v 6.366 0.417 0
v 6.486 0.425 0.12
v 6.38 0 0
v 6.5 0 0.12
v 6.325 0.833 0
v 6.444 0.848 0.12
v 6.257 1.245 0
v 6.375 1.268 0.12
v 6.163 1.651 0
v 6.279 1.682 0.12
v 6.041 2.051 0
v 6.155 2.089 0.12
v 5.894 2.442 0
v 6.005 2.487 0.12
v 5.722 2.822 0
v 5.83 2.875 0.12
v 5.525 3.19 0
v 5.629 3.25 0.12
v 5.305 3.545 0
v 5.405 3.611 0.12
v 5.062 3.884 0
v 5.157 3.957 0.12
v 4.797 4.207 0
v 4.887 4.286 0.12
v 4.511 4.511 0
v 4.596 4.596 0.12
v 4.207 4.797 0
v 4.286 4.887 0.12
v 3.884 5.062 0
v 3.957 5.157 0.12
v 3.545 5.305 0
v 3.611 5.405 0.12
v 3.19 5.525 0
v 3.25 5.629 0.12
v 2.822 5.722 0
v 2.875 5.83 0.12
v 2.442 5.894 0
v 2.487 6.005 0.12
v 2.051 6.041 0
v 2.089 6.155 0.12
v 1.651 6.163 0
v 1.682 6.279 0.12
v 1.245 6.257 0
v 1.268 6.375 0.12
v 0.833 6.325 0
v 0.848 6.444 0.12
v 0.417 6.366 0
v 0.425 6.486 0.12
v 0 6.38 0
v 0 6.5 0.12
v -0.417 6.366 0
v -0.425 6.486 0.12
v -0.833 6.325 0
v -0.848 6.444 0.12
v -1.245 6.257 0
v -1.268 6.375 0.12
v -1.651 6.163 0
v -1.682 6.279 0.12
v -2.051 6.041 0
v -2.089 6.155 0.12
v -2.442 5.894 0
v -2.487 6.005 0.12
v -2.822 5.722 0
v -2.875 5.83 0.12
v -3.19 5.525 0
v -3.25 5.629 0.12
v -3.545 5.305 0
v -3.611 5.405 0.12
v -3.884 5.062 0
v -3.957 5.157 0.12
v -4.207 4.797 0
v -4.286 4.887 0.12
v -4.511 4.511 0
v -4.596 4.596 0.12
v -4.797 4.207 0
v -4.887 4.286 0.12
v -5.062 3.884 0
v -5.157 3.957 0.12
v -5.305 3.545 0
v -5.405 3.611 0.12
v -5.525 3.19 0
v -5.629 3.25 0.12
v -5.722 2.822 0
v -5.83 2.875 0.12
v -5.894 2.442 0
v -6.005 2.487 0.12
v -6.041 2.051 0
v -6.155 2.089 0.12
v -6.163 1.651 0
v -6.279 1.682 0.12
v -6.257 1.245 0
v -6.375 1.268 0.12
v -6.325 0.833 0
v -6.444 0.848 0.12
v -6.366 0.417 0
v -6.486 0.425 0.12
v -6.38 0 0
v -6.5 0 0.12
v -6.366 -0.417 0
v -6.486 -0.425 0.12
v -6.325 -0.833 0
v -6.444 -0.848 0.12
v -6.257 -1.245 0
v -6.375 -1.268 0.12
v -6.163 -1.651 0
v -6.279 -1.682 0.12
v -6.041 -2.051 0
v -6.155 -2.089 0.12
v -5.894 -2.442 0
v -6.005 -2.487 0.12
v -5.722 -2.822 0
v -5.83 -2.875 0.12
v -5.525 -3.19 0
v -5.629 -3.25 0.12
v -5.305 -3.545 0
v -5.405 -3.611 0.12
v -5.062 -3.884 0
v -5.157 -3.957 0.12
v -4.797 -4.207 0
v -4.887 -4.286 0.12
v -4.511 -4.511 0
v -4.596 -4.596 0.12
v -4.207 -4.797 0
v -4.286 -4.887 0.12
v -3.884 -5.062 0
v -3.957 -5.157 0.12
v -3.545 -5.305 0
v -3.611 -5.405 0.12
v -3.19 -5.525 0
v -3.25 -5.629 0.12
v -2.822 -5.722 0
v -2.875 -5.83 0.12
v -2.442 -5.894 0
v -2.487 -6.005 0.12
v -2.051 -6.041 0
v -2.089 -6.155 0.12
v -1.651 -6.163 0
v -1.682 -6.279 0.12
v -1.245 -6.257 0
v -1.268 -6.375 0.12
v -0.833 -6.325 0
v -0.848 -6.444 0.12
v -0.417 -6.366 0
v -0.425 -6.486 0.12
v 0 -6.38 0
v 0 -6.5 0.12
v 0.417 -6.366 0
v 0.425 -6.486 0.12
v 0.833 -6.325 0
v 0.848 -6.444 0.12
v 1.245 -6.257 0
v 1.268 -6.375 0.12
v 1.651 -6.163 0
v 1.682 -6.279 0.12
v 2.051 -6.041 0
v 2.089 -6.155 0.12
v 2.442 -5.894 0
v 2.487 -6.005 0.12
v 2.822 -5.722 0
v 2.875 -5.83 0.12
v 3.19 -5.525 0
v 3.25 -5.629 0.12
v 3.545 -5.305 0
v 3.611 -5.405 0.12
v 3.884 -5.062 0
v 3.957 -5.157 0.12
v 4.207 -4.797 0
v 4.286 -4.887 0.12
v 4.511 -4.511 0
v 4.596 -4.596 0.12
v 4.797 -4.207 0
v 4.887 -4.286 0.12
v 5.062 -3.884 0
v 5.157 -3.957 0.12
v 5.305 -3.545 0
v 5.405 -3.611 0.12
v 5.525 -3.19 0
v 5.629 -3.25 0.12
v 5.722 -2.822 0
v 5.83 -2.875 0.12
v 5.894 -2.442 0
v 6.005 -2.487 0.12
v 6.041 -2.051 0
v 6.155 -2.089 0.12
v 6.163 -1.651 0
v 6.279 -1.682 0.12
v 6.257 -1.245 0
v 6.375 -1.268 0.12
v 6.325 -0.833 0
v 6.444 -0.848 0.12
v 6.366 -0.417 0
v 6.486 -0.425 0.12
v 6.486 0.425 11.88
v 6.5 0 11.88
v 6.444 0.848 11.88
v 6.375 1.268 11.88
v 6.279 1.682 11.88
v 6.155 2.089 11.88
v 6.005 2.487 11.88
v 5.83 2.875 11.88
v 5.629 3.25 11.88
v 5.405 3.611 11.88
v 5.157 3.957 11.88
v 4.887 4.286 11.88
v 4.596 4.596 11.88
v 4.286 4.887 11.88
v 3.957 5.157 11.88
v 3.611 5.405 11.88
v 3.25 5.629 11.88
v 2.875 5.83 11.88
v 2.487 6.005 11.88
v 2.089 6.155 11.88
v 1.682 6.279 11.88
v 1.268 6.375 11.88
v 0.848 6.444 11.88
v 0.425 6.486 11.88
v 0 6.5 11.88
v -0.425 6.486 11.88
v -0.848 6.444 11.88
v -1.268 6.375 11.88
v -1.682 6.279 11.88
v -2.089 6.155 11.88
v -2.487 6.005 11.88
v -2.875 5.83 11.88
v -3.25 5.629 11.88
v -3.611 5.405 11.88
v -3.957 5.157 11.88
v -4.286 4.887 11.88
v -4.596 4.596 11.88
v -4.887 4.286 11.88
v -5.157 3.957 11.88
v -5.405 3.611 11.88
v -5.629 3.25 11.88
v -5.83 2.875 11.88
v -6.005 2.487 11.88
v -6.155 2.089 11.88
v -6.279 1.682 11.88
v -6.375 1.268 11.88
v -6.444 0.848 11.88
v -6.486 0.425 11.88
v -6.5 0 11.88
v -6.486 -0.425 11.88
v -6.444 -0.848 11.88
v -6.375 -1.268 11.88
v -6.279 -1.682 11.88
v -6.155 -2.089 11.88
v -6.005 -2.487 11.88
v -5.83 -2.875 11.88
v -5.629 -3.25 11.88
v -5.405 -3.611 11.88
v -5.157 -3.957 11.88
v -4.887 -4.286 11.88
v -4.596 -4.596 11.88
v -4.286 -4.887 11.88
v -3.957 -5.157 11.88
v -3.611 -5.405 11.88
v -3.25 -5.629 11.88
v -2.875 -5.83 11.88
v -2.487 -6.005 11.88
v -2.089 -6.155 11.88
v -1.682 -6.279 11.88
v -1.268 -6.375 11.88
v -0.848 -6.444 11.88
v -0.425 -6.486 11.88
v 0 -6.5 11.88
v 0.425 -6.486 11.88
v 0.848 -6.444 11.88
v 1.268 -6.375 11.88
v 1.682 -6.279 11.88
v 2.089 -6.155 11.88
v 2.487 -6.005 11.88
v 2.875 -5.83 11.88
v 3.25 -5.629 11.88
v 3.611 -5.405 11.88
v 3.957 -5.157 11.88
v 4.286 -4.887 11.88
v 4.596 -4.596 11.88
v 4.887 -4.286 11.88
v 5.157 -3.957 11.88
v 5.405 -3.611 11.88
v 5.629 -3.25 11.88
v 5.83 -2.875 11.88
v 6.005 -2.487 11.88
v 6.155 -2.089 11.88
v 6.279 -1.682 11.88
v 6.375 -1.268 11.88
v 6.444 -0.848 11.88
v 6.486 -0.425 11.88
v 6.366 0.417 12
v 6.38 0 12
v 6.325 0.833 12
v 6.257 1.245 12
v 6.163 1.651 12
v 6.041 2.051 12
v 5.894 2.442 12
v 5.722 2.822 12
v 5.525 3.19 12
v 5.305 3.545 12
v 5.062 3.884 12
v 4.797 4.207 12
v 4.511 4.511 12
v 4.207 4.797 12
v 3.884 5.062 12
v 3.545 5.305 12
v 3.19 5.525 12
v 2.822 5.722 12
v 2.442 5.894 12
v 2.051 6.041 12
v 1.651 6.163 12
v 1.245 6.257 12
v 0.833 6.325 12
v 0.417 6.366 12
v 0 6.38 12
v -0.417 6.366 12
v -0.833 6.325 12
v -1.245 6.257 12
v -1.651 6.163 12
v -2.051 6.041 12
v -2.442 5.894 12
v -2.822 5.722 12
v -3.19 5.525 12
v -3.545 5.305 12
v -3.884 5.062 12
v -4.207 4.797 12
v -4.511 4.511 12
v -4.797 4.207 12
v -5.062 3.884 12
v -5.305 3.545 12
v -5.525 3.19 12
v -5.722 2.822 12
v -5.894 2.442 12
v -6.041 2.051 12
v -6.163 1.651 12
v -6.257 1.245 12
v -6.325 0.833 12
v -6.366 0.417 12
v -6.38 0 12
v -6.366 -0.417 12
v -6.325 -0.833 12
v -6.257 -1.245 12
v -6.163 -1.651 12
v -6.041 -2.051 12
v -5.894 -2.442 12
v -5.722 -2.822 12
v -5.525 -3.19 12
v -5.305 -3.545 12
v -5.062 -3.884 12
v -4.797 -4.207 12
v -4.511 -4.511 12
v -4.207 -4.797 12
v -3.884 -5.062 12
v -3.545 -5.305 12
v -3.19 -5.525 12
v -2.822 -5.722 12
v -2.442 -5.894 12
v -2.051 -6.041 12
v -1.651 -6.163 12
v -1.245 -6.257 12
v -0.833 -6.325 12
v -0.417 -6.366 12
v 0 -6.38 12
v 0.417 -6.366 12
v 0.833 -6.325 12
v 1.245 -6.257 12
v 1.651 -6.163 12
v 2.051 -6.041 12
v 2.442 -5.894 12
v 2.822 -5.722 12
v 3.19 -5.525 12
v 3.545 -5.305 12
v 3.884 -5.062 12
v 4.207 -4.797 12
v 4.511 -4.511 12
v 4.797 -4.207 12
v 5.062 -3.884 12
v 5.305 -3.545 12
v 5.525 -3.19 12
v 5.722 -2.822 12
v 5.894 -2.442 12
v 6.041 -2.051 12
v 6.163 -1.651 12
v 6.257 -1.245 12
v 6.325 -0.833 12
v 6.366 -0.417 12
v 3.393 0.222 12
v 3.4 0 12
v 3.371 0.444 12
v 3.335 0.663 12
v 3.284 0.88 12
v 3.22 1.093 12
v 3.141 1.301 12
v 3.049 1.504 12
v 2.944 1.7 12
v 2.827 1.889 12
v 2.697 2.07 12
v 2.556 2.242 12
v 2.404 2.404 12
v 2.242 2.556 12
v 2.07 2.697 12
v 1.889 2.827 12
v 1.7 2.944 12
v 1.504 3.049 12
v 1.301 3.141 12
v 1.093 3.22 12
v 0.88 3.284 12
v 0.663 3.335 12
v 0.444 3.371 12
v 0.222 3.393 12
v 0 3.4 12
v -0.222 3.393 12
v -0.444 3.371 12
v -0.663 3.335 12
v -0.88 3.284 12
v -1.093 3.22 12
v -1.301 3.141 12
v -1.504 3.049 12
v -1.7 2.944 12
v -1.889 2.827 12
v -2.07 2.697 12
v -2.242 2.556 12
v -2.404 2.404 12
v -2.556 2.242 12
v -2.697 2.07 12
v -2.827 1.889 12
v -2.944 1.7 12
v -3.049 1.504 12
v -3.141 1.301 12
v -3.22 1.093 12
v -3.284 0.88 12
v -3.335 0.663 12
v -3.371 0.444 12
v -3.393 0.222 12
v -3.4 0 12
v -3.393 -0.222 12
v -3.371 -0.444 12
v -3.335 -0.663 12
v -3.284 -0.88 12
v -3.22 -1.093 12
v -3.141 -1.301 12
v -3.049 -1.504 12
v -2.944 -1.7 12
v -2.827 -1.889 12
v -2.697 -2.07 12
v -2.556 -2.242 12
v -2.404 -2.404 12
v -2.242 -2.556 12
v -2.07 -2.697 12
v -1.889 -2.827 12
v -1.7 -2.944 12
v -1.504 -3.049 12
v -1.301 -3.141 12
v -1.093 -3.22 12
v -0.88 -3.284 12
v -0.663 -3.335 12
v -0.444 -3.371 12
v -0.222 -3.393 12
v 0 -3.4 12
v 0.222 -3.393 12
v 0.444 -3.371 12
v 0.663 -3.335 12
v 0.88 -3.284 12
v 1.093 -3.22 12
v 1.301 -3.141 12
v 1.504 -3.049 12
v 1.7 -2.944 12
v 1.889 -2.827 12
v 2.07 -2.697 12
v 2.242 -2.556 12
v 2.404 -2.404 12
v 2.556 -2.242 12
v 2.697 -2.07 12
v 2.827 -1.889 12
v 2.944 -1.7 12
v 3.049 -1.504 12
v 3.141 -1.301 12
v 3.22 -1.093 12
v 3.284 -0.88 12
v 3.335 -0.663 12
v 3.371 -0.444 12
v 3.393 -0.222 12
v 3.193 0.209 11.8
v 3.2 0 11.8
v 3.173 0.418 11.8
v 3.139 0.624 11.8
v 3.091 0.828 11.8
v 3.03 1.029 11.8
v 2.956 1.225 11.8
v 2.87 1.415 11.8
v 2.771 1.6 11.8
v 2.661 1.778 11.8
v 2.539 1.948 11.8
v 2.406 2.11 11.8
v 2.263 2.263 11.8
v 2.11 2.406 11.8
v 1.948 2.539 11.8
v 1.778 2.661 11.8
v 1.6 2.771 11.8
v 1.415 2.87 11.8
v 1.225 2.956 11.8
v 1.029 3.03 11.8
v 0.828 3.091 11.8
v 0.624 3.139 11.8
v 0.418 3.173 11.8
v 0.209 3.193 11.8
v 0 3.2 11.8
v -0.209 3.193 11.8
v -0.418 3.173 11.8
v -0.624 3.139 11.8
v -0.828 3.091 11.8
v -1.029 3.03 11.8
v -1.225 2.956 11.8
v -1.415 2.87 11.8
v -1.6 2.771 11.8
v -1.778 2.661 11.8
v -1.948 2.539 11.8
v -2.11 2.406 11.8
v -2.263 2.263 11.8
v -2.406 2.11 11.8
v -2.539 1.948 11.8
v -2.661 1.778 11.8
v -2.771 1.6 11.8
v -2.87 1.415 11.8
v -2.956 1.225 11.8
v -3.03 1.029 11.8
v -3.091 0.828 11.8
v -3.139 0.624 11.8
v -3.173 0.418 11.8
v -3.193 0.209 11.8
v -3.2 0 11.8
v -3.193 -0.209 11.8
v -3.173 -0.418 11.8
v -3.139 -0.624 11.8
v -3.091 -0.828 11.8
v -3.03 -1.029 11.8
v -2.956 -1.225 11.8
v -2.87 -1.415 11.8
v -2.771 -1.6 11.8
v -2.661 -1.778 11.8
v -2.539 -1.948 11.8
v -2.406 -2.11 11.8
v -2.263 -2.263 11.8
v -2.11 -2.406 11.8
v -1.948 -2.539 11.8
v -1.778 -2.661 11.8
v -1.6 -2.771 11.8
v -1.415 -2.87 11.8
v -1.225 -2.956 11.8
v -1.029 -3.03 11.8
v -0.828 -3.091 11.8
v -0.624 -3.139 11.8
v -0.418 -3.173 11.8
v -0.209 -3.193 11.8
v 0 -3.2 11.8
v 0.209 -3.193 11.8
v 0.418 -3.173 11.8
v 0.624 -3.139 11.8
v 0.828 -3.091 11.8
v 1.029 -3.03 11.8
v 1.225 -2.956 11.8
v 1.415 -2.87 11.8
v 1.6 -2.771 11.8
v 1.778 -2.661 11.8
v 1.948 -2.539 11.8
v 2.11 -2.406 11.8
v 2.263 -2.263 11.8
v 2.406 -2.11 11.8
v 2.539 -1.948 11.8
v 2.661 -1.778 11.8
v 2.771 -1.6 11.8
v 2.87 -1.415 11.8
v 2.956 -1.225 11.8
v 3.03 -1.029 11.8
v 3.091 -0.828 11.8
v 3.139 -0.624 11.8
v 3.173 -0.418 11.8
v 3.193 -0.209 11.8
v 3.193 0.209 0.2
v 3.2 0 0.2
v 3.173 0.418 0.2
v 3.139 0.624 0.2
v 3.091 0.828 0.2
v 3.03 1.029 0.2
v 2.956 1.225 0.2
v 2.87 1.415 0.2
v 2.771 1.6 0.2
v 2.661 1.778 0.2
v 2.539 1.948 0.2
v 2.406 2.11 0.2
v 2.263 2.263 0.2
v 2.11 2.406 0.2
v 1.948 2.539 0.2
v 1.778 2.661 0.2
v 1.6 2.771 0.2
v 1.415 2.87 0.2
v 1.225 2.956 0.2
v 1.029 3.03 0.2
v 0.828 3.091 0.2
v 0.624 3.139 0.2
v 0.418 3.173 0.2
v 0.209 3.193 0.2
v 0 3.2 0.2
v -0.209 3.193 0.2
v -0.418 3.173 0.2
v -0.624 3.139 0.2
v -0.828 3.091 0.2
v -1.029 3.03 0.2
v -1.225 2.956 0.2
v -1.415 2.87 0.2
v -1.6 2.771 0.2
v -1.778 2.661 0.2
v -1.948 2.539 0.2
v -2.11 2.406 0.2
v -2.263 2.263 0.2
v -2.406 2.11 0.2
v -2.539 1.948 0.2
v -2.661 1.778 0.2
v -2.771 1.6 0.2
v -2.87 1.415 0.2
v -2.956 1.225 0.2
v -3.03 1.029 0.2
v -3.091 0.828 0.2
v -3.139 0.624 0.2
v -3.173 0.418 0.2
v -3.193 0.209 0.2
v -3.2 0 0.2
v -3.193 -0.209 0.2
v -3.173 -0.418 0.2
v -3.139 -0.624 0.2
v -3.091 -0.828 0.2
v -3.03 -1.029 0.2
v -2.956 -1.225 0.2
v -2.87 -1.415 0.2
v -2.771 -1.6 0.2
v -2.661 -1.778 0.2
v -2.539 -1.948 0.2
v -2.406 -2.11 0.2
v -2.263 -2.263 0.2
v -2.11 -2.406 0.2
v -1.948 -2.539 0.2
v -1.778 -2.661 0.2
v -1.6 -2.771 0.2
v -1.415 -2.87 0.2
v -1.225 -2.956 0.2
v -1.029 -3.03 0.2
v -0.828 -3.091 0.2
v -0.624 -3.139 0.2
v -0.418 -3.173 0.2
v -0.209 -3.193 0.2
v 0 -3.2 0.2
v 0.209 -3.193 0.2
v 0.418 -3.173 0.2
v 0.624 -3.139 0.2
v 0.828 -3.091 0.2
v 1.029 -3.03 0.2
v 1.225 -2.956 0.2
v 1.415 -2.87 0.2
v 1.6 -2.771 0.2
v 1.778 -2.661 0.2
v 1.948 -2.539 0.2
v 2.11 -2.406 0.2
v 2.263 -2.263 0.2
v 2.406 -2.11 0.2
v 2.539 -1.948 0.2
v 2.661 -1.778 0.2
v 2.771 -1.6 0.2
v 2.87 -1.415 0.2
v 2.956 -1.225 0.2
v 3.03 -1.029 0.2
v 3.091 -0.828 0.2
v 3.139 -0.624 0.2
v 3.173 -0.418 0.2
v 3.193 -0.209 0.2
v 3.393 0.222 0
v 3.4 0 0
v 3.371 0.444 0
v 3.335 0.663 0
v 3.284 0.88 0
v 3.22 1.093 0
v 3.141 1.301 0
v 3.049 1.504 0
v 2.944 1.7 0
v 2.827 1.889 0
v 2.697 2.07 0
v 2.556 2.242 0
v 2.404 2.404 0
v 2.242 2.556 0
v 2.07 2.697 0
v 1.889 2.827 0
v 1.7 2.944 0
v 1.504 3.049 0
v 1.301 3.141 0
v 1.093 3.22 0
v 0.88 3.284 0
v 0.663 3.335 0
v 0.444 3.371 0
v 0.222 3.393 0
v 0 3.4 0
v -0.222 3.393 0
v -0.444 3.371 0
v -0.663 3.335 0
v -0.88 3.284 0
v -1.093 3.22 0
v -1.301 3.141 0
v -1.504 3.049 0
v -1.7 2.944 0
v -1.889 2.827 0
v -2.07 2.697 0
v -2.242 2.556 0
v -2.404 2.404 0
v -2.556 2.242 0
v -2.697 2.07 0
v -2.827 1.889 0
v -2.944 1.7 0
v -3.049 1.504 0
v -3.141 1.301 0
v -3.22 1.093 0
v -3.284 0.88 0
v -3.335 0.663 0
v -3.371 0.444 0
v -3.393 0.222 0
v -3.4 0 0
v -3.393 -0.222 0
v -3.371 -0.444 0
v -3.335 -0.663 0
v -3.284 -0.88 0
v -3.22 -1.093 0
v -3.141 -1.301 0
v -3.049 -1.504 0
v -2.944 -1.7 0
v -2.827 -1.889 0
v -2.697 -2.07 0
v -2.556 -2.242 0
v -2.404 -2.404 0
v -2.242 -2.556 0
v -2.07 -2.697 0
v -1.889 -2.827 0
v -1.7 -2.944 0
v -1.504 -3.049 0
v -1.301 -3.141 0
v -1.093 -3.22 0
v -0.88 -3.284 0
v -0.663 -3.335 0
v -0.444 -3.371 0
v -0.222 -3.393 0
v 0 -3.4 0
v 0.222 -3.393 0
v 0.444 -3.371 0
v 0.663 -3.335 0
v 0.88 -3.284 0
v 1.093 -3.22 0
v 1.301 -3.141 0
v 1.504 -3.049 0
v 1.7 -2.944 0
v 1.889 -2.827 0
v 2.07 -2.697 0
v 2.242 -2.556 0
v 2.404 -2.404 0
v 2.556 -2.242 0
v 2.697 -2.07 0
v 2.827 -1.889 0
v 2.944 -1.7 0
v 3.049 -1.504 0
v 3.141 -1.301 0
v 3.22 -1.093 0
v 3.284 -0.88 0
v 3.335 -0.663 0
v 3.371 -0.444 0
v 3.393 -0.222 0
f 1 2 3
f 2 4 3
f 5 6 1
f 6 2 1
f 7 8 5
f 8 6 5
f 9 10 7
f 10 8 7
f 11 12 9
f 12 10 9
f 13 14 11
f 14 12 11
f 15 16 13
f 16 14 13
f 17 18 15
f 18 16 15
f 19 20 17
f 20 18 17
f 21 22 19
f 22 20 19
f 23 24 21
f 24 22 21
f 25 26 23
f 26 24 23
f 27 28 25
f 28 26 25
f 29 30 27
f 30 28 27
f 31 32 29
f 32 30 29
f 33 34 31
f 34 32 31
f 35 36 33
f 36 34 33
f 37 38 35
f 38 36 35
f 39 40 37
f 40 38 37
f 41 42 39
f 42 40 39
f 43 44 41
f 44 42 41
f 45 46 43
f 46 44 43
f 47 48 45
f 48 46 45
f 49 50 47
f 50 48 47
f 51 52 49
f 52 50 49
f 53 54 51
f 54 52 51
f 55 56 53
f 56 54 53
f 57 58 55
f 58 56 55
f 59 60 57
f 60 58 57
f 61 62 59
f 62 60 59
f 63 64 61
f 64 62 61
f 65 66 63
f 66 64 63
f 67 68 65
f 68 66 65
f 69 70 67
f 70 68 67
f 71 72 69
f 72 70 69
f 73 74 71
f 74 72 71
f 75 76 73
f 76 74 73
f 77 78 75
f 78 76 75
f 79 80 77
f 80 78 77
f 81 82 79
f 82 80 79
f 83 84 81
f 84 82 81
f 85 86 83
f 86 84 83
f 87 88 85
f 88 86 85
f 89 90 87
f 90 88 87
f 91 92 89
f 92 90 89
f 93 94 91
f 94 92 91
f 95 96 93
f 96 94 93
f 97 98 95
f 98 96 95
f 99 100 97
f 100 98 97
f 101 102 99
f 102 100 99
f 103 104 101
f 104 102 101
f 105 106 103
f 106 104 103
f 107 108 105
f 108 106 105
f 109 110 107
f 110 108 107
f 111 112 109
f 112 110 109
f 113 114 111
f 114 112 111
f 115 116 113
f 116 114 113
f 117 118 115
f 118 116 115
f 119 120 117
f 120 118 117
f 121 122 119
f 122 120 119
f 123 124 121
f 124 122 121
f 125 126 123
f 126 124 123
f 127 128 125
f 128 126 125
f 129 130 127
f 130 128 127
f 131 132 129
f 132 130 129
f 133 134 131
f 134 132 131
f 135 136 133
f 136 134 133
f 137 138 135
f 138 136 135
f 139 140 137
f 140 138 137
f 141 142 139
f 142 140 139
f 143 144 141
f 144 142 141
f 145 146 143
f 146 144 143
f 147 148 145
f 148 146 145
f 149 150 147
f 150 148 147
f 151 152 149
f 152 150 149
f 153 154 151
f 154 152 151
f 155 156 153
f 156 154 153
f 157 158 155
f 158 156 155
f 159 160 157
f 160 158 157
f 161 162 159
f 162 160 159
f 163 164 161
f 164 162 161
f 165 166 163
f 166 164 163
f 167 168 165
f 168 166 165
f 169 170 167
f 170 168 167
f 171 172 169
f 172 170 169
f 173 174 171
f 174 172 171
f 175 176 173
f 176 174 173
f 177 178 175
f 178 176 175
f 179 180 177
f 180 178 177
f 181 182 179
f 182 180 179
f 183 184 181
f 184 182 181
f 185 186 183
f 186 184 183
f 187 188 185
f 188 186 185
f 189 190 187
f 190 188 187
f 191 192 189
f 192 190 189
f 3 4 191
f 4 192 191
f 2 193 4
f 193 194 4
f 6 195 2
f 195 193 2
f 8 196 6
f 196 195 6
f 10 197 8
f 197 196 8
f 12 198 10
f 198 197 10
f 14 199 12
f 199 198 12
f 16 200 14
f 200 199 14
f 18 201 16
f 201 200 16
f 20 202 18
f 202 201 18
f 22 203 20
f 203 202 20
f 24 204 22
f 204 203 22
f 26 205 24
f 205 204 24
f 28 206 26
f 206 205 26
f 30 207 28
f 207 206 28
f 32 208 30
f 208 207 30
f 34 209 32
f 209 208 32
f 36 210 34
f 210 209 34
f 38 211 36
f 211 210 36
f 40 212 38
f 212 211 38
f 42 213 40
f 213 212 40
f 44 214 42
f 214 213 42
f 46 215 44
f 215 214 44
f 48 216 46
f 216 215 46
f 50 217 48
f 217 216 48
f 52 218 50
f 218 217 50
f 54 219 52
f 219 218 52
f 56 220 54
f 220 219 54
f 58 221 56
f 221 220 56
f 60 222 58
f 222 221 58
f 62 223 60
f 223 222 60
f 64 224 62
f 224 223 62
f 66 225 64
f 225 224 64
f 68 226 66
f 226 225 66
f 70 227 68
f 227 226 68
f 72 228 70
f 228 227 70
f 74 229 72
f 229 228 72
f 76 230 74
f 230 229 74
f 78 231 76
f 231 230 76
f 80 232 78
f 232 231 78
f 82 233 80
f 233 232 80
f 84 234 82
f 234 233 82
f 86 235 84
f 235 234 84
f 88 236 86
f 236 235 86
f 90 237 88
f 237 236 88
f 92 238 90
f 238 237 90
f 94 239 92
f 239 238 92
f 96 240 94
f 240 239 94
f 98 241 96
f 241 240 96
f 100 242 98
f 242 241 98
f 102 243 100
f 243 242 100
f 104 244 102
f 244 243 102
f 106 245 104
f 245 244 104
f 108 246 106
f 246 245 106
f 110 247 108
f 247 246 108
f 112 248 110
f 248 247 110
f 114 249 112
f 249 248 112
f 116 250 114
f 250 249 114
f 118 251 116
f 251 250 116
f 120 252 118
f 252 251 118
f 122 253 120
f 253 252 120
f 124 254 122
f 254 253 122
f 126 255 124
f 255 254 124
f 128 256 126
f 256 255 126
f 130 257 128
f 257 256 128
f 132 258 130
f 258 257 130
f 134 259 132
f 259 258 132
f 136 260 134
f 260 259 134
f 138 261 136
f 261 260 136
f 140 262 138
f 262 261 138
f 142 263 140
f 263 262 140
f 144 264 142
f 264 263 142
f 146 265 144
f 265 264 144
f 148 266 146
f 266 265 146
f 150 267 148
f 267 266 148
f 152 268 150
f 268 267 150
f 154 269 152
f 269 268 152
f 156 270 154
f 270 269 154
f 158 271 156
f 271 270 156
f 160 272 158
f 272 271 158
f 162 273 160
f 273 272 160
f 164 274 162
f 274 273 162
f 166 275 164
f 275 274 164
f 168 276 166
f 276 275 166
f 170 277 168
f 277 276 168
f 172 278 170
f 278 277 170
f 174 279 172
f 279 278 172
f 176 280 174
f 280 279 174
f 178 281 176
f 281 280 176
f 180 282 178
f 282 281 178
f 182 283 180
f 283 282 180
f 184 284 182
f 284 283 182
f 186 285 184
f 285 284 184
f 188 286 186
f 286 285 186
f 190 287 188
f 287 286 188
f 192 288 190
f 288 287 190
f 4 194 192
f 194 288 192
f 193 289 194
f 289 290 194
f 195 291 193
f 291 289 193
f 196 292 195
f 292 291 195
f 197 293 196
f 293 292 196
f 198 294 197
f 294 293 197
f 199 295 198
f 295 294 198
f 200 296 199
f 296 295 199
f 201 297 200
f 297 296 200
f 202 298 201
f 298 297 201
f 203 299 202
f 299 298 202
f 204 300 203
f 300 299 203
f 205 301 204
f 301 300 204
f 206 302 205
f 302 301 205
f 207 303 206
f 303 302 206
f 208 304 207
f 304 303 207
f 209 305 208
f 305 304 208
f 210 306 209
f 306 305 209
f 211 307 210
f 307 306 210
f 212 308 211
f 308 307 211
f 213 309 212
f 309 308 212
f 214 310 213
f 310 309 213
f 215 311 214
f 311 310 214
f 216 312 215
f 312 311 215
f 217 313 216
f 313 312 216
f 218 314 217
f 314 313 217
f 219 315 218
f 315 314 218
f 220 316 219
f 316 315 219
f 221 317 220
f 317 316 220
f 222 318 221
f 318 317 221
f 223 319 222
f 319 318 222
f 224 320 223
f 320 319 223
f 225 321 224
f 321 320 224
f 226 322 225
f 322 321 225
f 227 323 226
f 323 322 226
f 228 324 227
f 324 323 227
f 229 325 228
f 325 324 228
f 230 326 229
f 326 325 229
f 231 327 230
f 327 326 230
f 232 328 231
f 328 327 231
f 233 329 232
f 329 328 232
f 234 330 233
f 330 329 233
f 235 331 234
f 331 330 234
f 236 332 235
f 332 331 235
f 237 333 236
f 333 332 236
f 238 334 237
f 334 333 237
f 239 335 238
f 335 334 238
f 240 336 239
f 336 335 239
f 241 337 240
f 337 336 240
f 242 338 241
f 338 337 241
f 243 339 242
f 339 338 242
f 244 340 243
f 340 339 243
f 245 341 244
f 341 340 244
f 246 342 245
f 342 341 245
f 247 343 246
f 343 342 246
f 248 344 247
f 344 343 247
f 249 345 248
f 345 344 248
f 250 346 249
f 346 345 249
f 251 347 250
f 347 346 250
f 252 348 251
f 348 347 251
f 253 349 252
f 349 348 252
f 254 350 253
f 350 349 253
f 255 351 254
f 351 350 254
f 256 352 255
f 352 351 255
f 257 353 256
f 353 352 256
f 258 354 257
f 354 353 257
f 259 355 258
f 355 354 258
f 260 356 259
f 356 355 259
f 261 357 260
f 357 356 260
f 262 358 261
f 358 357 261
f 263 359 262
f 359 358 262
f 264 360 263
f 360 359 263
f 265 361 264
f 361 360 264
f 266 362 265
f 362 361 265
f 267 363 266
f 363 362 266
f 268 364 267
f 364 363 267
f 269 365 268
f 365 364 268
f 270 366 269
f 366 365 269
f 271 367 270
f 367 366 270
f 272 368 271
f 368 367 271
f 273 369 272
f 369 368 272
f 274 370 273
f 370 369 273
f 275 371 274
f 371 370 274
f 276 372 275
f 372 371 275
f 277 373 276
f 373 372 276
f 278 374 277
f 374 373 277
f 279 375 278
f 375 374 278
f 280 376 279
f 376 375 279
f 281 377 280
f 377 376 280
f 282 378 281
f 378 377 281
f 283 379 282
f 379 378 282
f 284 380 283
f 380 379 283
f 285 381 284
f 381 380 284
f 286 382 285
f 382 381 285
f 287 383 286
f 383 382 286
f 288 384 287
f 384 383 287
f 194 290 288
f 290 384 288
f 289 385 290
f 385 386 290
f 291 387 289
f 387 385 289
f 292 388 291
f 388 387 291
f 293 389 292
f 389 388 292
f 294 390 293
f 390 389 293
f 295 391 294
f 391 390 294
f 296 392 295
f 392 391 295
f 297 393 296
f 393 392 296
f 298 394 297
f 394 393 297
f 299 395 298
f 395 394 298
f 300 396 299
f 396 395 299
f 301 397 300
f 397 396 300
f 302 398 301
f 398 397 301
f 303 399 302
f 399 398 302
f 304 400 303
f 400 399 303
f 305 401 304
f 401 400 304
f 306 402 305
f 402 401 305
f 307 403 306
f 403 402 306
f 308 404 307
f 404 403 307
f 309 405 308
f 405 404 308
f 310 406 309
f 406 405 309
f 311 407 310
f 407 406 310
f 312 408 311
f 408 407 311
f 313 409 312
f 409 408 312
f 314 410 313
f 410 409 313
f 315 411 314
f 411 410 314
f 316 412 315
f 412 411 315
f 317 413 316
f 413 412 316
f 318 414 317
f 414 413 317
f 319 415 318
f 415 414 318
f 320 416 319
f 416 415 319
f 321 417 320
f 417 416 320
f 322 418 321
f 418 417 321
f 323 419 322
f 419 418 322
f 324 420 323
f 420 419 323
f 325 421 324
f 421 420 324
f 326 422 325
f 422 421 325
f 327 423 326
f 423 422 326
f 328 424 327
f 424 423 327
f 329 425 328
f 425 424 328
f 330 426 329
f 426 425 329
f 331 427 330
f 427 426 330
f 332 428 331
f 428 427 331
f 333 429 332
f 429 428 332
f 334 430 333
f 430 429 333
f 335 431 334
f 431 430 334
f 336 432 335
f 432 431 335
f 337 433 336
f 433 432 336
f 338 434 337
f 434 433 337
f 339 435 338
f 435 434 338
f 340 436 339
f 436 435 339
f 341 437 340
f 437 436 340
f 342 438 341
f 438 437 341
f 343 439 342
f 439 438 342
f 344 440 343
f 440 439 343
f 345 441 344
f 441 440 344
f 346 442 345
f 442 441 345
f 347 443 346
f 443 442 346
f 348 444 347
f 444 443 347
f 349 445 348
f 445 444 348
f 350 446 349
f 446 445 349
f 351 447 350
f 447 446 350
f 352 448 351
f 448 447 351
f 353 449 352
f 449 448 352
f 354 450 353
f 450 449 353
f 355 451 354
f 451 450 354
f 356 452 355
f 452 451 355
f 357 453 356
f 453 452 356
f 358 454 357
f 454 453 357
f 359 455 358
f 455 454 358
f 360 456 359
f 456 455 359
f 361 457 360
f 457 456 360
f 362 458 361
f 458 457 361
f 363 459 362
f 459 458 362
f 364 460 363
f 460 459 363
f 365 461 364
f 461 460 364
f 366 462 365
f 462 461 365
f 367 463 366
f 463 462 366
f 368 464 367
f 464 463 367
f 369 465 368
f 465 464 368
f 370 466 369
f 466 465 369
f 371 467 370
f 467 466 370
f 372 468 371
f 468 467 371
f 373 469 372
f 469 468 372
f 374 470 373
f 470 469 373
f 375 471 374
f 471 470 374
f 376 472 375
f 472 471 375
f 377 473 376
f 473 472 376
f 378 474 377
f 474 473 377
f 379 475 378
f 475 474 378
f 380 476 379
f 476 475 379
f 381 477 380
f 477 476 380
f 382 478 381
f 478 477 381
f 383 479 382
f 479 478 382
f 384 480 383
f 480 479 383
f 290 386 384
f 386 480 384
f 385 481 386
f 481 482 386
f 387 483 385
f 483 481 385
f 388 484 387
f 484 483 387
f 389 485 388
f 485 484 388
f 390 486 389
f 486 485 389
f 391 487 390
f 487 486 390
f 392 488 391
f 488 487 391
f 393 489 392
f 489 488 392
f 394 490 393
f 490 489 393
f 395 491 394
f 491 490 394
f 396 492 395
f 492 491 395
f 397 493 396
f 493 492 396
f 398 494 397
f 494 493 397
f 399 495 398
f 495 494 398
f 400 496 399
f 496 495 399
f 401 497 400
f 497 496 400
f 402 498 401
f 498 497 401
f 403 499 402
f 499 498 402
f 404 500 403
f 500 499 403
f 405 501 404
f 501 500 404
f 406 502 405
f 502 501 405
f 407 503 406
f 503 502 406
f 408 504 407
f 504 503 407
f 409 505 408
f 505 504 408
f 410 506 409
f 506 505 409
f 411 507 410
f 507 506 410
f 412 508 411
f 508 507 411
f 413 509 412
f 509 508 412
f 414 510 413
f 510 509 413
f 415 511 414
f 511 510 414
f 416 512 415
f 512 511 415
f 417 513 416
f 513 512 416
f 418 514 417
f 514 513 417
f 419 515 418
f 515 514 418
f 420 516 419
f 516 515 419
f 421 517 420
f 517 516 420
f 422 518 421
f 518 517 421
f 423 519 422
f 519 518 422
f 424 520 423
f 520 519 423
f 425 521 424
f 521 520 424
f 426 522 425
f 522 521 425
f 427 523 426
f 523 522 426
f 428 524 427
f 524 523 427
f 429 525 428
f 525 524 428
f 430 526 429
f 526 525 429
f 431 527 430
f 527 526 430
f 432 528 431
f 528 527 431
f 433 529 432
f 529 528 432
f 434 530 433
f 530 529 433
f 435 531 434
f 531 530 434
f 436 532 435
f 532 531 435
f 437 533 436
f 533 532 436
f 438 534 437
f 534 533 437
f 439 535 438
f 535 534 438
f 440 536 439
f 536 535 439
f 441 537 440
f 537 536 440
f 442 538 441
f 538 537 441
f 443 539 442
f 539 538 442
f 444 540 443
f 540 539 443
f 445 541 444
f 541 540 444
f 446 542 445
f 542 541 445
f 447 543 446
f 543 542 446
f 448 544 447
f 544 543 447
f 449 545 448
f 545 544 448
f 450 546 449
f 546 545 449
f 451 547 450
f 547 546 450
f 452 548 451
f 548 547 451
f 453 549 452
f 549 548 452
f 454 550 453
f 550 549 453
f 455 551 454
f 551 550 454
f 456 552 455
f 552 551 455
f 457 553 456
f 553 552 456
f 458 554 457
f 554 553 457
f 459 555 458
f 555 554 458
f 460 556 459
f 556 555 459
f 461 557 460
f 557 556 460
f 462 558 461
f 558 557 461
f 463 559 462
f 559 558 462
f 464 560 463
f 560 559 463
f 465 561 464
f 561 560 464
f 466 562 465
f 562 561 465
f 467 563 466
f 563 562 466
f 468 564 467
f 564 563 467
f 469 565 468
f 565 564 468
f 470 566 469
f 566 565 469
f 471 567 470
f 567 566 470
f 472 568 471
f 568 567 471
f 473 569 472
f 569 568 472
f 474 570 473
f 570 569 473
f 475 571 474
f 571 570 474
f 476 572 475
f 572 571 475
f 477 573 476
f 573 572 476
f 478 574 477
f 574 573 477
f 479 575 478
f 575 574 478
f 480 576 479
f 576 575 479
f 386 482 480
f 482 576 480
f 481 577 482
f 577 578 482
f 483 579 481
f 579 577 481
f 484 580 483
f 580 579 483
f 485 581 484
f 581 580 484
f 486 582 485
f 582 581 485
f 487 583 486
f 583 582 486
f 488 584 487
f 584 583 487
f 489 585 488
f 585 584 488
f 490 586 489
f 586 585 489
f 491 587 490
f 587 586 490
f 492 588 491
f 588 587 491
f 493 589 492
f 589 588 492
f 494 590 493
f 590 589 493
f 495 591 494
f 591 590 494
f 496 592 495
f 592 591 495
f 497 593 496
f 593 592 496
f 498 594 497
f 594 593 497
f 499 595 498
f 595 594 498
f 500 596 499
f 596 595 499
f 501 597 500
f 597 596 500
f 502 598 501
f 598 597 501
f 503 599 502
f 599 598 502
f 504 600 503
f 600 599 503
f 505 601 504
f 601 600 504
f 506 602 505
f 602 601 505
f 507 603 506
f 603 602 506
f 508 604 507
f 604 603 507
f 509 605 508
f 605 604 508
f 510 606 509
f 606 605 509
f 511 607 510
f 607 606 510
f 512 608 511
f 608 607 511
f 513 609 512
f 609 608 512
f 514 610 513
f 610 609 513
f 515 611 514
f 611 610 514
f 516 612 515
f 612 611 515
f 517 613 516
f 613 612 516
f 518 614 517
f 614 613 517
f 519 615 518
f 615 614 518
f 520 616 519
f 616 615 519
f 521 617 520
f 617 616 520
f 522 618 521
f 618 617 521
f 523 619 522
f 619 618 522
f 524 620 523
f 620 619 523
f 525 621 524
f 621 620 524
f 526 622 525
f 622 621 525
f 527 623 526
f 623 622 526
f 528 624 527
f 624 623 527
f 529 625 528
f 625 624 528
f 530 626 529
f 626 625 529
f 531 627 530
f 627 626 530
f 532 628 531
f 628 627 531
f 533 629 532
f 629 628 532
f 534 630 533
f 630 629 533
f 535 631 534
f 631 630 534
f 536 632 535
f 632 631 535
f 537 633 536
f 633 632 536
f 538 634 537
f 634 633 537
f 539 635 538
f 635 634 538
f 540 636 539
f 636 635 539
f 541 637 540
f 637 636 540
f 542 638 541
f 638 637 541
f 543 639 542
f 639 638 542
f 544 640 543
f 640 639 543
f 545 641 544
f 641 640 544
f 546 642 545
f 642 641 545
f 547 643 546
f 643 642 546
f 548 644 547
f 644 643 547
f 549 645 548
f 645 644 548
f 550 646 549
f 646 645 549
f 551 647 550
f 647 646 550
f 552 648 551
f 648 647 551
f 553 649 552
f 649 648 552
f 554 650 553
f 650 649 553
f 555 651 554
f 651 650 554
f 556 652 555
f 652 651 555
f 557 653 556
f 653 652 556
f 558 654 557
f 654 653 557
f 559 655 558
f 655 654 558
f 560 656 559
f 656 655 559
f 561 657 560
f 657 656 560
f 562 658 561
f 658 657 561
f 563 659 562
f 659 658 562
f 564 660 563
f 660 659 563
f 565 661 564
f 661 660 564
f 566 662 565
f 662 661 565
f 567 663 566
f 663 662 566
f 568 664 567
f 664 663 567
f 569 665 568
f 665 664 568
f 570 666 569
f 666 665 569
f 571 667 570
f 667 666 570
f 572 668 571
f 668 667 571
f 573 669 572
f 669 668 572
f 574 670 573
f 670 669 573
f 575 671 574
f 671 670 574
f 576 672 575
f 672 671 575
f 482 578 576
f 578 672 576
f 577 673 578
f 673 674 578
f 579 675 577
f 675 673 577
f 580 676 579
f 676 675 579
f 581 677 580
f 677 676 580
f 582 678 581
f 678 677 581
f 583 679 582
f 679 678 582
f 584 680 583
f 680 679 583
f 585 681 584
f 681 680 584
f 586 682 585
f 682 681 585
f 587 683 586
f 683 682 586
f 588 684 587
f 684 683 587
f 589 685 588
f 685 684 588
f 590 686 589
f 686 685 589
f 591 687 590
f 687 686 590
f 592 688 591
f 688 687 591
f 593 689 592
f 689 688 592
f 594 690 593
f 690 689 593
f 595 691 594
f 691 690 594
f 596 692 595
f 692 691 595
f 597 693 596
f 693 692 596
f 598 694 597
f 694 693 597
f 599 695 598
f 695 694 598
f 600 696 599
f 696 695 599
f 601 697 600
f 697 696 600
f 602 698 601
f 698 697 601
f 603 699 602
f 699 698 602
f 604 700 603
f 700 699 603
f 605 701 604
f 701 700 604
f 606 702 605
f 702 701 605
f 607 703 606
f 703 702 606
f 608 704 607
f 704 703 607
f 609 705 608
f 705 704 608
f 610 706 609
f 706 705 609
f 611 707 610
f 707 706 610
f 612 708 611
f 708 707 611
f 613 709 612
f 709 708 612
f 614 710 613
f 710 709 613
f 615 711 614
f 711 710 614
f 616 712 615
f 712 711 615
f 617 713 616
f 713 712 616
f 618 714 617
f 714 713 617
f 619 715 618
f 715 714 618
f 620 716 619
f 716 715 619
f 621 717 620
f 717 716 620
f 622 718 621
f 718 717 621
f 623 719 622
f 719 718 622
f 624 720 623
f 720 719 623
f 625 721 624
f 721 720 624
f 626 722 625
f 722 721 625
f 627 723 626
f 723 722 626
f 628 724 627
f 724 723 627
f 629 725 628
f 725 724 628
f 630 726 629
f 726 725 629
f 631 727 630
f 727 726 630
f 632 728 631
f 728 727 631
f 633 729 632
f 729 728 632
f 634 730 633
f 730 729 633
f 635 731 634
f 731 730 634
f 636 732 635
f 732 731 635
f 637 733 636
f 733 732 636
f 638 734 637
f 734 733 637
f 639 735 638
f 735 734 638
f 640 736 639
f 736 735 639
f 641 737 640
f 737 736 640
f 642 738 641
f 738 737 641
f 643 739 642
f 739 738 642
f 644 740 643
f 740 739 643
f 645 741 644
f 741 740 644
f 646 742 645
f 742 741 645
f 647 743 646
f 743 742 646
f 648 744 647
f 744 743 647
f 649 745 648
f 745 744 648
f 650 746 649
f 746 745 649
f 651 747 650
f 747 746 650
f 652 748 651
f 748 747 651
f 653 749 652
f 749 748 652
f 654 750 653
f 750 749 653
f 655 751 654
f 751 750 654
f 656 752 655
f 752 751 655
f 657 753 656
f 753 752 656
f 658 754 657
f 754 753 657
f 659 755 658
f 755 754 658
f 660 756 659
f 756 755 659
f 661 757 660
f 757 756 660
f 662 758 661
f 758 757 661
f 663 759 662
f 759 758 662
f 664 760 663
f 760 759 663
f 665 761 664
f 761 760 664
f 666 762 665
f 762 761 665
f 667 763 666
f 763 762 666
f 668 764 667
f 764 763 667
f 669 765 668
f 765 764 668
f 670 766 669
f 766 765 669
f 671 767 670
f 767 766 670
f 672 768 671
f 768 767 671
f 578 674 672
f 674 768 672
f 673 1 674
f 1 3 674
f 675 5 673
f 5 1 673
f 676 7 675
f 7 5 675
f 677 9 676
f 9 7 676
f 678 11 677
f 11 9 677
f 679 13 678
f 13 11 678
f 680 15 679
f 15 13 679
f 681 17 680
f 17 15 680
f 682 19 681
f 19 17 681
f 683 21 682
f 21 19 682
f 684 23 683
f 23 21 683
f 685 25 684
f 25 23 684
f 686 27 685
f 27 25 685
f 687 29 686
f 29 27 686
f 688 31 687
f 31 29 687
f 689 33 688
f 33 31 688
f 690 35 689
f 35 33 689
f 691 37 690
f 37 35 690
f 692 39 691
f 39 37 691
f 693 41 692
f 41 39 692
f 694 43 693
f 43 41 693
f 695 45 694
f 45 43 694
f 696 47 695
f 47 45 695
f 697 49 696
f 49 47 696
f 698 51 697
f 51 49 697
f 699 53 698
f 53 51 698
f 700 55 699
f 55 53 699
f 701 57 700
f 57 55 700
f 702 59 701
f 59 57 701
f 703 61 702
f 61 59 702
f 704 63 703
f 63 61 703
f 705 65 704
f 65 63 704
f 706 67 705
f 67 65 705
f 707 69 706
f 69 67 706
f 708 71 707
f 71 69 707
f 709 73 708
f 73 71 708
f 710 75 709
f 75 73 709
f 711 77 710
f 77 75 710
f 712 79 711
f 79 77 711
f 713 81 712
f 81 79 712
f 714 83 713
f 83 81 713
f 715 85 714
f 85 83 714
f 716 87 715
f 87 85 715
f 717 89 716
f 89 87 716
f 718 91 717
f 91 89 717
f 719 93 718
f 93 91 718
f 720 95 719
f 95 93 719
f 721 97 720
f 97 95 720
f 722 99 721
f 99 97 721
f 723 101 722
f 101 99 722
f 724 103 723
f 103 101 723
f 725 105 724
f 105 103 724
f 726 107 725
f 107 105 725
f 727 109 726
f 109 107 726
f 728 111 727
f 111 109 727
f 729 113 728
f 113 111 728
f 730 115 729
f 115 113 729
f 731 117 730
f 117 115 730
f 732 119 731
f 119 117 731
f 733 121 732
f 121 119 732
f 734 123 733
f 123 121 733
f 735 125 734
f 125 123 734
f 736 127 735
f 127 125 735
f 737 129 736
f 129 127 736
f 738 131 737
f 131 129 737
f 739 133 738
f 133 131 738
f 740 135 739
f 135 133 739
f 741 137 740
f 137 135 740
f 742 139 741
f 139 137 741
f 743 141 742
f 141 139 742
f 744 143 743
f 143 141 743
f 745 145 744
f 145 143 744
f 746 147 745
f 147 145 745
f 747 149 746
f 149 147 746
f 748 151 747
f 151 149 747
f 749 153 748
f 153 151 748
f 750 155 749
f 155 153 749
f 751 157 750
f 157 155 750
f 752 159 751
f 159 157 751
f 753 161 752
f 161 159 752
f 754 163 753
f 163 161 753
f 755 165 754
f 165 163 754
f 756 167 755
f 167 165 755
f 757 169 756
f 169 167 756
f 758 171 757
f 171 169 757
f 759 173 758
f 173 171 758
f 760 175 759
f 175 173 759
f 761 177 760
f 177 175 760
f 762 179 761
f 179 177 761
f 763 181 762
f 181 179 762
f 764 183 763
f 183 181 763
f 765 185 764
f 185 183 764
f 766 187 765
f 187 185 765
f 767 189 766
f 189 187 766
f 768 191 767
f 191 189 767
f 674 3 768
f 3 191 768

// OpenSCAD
// OOMP generic catalogue model; units: mm.
// Stud length is additional to body depth. Tapping depths are model assumptions.
variant = "full"; // [full, display]
family = "spacer";
connection_type = "plain";
depth_mm = 12;
stud_length_mm = 0;
tapped_depth_mm = 0;
bore_mm = 6.4;
outer_diameter_mm = 13;
across_flats_mm = 6;
thread_nominal_diameter_mm = 3;
thread_pitch_mm = 0.5;
edge_chamfer_mm = 0.12;
mouth_chamfer_mm = 0.2;
angular_segments = 96;
samples_per_pitch = 16;

// Boundary travels up the outside, then down any tapped/plain bore.
// Equal-height rings at shoulders form the annular shoulder faces.
n = angular_segments;
threaded = family == "standoff";
has_stud = connection_type == "stud_to_tapped" || connection_type == "stud_to_stud";
two_studs = connection_type == "stud_to_stud";
through = !threaded || connection_type == "tapped_to_tapped";
pitch = thread_pitch_mm;
diameter = threaded ? thread_nominal_diameter_mm : bore_mm;
minor = diameter - 5*sqrt(3)*pitch/8;
transition = mouth_chamfer_mm + (threaded ? 5*sqrt(3)*pitch/16 : 0);
tip_chamfer = mouth_chamfer_mm + 17*sqrt(3)*pitch/48;
function sorted(v) = len(v)<=1 ? v : let(p=v[0])
    concat(sorted([for(x=v) if(x<p-1e-8) x]), [p], sorted([for(x=v) if(x>p+1e-8) x]));
function reverse(v) = [for(i=[len(v)-1:-1:0]) v[i]];
function theta(i) = i*360/n;
function fract(x) = x-floor(x);
function phase_distance(i,z) = abs(fract(z/pitch-theta(i)/360+0.5)-0.5);
function thread_r(i,z) = minor/2 + min(5*sqrt(3)*pitch/16,
    max(0,(phase_distance(i,z)-0.125)*pitch*sqrt(3)));
function stud_r(i,z,tip) = min(diameter/2 - (variant=="full" ?
    min(17*sqrt(3)*pitch/48,max(0,(phase_distance(i,z)-0.0625)*pitch*sqrt(3))) : 0),
    diameter/2-tip_chamfer+abs(z-tip));
function body_r(i,z) = (threaded ? across_flats_mm/2/cos(theta(i)%60-30) : outer_diameter_mm/2)
    - max(0,edge_chamfer_mm-min(z,depth_mm-z));
function bore_r(i,z) = max(threaded ? (variant=="full" ? thread_r(i,z) : minor/2) : diameter/2,
    diameter/2+mouth_chamfer_mm-(through ? min(z,depth_mm-z) : depth_mm-z));
function stud_z(a,b,tip) = let(count=variant=="full" ? ceil(stud_length_mm/pitch*samples_per_pitch) : 1)
    sorted(concat([for(i=[0:count]) a+(b-a)*i/count], [tip==a ? tip+tip_chamfer : tip-tip_chamfer]));
body_z = sorted([0,edge_chamfer_mm,depth_mm-edge_chamfer_mm,depth_mm]);
low = through ? 0 : depth_mm-tapped_depth_mm;
count = threaded && variant=="full" ? ceil((depth_mm-low)/pitch*samples_per_pitch) : 1;
bore_z = two_studs ? [] : reverse(sorted(concat(
    [for(i=[0:count]) low+(depth_mm-low)*i/count],
    [depth_mm-mouth_chamfer_mm,depth_mm-transition],
    through ? [mouth_chamfer_mm,transition] : [])));
// Ring descriptors: [height, kind, tip]. Kind: 0 body, 1 stud, 2 bore.
rings = concat(
    has_stud ? [for(z=stud_z(-stud_length_mm,0,-stud_length_mm)) [z,1,-stud_length_mm]] : [],
    [for(z=body_z) [z,0,0]],
    two_studs ? [for(z=stud_z(depth_mm,depth_mm+stud_length_mm,depth_mm+stud_length_mm)) [z,1,depth_mm+stud_length_mm]] : [],
    [for(z=bore_z) [z,2,0]]);
function radius(i,ring) = ring[1]==0 ? body_r(i,ring[0]) :
    ring[1]==1 ? stud_r(i,ring[0],ring[2]) : bore_r(i,ring[0]);
points = concat([for(ring=rings) for(i=[0:n-1])
    [radius(i,ring)*cos(theta(i)),radius(i,ring)*sin(theta(i)),ring[0]]],
    through ? [] : [[0,0,rings[0][0]],[0,0,rings[len(rings)-1][0]]]);
center = len(rings)*n;
last = (len(rings)-1)*n;
// OpenSCAD winding is opposite to STL winding.
faces = concat(
    [for(j=[0:len(rings)-(through ? 1 : 2)]) for(i=[0:n-1]) each
        let(a=j*n+i,b=j*n+(i+1)%n,c=((j+1)%len(rings))*n+(i+1)%n,d=((j+1)%len(rings))*n+i)
        [[a,c,b],[a,d,c]]],
    through ? [] : [for(i=[0:n-1]) each let(k=(i+1)%n)
        [[center,i,k],[center+1,last+k,last+i]]]);
assert(family=="spacer" || family=="standoff");
assert(!threaded || connection_type=="tapped_to_tapped" || has_stud);
assert(depth_mm>0 && diameter>0 && pitch>0);
assert(variant=="full" || variant=="display");
assert(n>=24 && n%12==0 && samples_per_pitch>=8);
assert(mouth_chamfer_mm>0 && mouth_chamfer_mm<depth_mm/2);
assert(edge_chamfer_mm>=0 && edge_chamfer_mm<depth_mm/2);
assert(diameter+4*max(mouth_chamfer_mm,edge_chamfer_mm) < (threaded ? across_flats_mm : outer_diameter_mm));
assert(!has_stud || stud_length_mm>2*mouth_chamfer_mm);
assert(!through || !threaded || 2*transition<depth_mm);
assert(connection_type!="stud_to_tapped" || (tapped_depth_mm>transition && tapped_depth_mm<depth_mm));
color([0.86,0.85,0.81]) polyhedron(points=points,faces=faces,convexity=20);
